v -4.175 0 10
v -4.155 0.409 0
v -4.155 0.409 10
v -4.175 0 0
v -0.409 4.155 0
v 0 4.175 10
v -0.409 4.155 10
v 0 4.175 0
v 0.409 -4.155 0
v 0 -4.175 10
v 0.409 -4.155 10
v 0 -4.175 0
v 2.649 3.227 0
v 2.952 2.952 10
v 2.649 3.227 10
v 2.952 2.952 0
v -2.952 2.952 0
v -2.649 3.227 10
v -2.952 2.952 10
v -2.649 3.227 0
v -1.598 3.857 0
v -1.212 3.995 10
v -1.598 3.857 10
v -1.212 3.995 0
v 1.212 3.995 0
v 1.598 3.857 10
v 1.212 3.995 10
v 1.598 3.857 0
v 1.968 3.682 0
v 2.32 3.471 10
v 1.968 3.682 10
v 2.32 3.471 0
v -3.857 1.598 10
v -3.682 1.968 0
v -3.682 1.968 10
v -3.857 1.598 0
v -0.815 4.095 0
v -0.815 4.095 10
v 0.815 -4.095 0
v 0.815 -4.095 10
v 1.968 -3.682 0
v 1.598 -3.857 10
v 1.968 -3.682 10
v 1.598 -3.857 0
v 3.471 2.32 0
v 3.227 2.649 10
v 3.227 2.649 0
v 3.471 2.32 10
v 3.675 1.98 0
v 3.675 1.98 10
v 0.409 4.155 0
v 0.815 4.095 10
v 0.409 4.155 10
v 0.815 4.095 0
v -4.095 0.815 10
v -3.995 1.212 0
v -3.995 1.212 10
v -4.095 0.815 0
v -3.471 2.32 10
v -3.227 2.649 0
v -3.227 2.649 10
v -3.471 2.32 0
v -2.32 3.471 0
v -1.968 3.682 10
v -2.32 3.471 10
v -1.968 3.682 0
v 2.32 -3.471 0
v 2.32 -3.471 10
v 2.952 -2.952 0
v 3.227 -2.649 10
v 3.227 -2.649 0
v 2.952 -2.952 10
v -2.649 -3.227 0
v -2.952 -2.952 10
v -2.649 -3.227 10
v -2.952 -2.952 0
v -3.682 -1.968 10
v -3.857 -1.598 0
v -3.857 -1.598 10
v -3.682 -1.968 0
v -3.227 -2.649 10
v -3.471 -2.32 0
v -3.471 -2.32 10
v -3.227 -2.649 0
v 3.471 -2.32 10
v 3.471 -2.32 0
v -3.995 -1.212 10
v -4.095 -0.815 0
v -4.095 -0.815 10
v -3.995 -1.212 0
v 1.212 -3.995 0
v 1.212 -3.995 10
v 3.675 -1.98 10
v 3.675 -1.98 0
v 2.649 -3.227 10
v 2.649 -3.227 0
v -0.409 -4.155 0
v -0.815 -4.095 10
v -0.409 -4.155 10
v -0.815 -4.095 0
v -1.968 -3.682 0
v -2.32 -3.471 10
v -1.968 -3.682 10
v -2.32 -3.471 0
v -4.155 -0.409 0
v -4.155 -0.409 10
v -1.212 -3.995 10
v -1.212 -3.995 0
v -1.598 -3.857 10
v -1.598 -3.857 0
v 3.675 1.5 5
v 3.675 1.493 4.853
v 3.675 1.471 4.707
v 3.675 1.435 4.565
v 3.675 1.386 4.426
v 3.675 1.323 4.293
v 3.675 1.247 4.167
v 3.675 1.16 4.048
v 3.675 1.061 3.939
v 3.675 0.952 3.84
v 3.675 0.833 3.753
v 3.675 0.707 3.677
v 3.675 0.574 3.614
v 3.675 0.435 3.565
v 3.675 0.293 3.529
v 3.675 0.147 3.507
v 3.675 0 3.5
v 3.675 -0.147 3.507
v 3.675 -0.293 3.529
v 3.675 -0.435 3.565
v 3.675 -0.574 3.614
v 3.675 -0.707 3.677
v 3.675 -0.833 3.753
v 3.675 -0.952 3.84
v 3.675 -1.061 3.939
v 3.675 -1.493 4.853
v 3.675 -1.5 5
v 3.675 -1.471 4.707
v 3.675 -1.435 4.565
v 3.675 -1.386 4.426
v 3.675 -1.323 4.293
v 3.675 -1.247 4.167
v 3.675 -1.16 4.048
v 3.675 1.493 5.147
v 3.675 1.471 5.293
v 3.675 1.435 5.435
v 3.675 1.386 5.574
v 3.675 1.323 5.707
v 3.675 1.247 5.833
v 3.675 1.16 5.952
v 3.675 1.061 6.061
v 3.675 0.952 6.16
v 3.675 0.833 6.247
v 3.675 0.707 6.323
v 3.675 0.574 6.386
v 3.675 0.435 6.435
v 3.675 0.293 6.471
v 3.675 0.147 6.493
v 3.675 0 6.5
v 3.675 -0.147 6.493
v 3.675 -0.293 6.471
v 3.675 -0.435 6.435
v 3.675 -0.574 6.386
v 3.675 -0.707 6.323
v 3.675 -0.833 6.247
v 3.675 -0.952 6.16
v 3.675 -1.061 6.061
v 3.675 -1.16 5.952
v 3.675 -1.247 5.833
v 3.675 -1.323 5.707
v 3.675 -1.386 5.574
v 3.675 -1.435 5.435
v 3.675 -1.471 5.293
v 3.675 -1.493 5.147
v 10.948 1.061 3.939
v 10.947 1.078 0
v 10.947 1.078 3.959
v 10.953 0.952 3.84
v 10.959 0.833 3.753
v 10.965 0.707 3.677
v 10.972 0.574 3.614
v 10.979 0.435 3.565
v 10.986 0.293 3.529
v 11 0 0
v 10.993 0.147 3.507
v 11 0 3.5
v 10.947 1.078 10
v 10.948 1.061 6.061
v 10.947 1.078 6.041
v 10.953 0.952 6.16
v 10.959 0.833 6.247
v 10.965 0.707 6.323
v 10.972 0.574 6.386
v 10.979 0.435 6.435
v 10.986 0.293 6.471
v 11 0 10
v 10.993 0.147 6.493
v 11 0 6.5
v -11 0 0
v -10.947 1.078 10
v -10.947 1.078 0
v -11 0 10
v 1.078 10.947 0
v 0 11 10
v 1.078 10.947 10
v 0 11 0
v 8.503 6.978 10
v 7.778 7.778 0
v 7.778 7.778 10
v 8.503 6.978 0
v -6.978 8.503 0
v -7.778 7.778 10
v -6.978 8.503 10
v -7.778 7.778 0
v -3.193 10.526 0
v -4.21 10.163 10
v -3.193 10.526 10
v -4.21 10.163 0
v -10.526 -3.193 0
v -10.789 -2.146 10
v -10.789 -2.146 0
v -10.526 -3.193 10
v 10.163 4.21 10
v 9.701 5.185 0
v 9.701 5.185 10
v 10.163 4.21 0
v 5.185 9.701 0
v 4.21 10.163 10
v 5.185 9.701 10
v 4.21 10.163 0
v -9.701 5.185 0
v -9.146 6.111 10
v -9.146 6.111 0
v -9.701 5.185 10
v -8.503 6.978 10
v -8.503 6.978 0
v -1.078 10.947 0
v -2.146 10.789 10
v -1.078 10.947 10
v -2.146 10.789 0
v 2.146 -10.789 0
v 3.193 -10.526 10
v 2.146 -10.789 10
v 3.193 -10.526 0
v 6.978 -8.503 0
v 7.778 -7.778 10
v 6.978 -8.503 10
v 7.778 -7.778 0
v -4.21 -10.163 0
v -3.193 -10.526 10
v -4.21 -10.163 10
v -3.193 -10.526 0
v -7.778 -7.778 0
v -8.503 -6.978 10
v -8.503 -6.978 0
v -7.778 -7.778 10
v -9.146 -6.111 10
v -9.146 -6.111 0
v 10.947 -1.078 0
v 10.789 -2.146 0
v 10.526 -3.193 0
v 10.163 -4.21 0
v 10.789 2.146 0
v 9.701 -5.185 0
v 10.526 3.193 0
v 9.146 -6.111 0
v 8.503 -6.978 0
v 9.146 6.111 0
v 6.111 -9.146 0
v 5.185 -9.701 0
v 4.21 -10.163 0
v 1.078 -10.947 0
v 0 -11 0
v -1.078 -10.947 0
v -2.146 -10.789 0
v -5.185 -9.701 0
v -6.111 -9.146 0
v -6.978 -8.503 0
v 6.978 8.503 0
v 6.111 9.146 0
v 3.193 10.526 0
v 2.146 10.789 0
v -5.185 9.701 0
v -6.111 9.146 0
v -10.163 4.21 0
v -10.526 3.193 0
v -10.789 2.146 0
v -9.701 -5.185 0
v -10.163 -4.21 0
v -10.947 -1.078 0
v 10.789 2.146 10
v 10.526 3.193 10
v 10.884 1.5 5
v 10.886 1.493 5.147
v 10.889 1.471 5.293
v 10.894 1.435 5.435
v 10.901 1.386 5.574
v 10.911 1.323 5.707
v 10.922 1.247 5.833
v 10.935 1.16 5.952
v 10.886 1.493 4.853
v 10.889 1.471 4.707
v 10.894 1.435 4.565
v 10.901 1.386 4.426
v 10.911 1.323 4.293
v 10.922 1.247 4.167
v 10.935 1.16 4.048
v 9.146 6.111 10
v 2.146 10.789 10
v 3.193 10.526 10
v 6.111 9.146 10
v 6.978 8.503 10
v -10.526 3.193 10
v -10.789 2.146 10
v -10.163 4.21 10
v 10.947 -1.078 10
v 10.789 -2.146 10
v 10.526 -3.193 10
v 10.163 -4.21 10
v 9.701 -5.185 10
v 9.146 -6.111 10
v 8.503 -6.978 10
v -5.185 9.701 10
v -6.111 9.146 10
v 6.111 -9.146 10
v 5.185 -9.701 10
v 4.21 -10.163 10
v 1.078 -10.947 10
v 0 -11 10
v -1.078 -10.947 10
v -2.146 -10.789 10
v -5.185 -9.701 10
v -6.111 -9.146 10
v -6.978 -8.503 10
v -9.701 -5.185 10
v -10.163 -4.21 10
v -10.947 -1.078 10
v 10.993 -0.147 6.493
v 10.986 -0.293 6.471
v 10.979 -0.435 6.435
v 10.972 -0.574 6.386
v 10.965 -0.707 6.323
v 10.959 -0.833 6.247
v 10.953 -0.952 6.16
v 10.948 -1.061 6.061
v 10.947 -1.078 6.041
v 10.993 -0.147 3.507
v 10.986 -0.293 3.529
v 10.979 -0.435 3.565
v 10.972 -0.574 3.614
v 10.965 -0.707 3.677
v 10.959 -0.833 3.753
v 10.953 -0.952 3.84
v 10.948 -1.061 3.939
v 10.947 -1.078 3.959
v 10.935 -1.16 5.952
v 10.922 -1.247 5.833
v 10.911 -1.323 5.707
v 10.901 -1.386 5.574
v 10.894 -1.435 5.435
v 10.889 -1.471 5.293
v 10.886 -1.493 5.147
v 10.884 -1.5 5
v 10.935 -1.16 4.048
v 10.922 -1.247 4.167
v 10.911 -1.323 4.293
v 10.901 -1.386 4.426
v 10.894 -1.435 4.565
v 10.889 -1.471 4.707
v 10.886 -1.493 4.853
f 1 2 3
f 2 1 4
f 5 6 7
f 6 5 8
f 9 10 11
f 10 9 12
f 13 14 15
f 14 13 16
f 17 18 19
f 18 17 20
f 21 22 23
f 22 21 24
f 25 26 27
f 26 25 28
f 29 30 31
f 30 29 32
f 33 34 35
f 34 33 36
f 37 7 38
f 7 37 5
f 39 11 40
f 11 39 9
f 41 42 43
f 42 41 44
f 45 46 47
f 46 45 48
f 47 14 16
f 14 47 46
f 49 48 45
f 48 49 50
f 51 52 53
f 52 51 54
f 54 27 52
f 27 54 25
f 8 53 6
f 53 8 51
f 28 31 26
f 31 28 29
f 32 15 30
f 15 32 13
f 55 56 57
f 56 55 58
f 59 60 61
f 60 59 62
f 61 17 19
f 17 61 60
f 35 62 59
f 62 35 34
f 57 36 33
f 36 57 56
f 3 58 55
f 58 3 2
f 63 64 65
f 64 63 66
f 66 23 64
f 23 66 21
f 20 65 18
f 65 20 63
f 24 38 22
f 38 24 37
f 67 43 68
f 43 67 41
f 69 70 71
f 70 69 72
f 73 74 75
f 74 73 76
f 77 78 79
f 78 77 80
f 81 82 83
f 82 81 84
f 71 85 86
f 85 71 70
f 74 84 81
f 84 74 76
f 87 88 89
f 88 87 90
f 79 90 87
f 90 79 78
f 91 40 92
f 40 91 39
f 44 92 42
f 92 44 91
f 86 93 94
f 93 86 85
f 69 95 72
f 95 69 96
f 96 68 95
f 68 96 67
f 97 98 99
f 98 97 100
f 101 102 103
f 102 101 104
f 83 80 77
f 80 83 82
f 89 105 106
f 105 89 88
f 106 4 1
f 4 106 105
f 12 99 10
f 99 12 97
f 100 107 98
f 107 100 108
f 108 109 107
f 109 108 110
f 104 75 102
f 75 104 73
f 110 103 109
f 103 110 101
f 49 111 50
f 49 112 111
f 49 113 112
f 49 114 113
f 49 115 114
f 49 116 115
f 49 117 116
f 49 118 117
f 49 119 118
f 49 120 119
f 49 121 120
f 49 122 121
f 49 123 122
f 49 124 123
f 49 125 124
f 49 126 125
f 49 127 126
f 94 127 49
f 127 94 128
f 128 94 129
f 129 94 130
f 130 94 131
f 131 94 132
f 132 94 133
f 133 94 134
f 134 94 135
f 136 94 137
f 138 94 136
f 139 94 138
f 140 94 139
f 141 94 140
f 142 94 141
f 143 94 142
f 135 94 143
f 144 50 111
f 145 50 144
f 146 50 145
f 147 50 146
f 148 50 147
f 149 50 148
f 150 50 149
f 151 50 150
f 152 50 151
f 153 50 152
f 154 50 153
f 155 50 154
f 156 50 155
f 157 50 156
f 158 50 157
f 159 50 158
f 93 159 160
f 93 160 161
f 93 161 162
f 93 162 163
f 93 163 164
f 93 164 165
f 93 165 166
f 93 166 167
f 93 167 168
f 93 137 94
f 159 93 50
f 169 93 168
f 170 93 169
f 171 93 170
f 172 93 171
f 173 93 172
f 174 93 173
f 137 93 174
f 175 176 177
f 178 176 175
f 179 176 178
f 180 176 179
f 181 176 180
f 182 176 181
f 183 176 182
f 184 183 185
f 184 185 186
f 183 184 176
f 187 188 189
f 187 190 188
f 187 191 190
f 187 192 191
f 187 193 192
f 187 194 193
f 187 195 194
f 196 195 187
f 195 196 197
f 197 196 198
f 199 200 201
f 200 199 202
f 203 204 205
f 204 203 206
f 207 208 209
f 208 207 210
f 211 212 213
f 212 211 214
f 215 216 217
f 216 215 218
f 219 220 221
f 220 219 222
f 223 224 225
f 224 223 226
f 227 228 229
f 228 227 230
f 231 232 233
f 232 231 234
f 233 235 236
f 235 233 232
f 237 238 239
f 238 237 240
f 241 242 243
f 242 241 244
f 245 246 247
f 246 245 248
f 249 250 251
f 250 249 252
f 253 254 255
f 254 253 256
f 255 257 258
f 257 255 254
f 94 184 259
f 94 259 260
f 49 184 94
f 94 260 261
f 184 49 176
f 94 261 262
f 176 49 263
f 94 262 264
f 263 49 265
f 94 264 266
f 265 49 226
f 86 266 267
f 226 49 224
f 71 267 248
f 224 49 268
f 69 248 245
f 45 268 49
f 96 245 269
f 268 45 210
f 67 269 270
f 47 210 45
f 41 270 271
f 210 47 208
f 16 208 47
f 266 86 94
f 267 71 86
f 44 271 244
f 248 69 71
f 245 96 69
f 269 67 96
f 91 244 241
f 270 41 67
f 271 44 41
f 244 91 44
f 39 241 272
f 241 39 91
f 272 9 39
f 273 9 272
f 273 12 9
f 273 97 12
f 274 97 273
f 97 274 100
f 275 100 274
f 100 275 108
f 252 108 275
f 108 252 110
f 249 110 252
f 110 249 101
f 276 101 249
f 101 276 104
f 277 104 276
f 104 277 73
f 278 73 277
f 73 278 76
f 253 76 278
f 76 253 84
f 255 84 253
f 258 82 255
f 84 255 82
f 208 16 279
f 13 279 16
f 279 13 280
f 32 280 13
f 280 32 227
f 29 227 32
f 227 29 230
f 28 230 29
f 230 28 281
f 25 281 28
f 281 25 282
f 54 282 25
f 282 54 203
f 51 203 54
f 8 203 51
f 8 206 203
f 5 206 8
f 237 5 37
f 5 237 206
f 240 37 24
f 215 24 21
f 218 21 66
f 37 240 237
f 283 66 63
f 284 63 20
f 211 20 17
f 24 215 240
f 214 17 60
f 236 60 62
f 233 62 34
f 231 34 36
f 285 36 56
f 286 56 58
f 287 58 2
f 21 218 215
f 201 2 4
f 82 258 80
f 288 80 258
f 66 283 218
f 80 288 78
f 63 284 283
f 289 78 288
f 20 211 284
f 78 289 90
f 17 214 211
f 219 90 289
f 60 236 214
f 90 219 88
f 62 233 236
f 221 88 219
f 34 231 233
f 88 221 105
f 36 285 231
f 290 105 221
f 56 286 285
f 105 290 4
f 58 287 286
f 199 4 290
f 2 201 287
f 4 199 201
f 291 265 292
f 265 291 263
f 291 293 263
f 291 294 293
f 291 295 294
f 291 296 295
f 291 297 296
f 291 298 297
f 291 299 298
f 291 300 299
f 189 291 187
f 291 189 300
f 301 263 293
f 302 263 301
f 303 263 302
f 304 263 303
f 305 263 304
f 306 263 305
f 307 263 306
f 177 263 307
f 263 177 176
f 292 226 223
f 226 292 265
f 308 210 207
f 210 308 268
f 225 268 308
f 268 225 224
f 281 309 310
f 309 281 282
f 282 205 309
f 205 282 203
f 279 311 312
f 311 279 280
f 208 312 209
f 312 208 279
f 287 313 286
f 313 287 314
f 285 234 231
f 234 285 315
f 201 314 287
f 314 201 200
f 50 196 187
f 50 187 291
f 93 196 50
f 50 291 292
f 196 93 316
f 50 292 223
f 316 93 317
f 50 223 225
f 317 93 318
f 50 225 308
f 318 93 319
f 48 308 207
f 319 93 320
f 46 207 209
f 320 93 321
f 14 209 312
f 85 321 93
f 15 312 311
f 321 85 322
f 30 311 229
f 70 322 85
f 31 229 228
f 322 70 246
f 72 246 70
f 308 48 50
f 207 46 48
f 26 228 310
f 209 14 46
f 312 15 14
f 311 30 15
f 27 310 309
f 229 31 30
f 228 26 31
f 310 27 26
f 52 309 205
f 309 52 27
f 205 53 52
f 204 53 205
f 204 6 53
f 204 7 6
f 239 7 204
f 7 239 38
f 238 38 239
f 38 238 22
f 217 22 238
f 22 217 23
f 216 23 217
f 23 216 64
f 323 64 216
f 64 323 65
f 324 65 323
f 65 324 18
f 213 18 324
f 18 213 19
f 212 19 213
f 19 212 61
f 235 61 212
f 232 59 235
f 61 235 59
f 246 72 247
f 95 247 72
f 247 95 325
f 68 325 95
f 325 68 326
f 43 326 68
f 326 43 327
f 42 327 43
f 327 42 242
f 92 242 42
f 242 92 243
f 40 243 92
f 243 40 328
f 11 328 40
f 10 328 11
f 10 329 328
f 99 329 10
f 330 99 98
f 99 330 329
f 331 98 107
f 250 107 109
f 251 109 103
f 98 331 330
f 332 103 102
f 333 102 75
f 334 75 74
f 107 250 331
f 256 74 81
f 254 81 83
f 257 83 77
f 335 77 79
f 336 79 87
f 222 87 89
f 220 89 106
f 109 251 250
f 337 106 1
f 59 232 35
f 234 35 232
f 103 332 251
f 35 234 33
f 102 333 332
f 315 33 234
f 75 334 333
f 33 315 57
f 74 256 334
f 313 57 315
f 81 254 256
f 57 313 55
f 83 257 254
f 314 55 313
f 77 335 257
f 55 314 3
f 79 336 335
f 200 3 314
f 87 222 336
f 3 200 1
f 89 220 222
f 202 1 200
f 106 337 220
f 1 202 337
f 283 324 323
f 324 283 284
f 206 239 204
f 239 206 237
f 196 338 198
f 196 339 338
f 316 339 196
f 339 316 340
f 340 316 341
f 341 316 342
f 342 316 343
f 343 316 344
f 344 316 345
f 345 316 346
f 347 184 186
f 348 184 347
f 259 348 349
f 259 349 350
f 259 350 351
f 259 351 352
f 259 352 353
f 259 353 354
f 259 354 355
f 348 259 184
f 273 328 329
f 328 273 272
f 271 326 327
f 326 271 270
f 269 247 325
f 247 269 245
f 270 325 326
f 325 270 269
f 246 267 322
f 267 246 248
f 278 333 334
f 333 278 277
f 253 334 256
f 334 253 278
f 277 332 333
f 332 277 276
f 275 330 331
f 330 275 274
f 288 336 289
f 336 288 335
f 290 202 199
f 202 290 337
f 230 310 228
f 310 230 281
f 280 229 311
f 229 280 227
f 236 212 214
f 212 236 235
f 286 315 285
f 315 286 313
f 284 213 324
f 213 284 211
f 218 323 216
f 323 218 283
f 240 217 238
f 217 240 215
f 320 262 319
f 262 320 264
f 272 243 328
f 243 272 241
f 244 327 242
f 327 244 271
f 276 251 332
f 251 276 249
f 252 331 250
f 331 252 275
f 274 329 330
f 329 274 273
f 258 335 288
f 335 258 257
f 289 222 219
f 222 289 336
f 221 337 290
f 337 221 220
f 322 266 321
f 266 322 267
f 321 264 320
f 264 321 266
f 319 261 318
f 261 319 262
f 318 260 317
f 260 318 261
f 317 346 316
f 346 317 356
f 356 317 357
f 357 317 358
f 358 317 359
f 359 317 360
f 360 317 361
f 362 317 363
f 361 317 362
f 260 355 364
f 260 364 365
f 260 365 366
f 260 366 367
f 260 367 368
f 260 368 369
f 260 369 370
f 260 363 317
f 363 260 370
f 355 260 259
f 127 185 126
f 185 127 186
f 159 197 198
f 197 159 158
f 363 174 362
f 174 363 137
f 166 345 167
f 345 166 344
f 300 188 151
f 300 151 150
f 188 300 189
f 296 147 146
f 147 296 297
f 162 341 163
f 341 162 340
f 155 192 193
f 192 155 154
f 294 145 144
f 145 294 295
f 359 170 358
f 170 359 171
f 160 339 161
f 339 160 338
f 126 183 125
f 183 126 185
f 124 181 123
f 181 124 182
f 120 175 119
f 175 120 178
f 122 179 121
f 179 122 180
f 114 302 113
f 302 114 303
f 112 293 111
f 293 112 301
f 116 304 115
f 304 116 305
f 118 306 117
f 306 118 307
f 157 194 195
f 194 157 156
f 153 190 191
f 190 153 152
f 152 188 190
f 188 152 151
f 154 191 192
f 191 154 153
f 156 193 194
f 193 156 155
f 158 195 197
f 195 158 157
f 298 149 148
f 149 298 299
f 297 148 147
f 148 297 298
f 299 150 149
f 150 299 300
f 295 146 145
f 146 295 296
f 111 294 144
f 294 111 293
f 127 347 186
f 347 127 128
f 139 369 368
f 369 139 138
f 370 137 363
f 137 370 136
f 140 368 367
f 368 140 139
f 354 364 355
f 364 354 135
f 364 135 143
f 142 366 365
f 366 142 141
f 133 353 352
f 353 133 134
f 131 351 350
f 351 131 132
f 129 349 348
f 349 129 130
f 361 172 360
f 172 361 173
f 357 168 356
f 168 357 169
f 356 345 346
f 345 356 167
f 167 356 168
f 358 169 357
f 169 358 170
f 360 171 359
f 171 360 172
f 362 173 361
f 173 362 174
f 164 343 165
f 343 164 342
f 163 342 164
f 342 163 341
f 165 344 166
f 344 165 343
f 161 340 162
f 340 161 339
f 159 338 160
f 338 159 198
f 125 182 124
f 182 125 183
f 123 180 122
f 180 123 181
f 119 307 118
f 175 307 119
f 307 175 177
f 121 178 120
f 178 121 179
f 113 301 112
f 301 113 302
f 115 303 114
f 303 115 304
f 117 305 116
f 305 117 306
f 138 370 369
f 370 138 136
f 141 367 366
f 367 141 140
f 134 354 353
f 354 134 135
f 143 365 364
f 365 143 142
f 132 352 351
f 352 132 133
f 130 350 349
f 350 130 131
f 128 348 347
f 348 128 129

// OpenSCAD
// Gen-EE — shaft collar with D-flat bore (set screw bears on the flat); print x4
include <parameters.scad>;
$fn = 64;
// D-flat keyed bore: flat faces +X (angle 0 = magnet pocket 0 = index notch)
module dflat_bore(h) {
    intersection() {
        cylinder(d=shaft_bore, h=h);
        translate([-shaft_bore, -shaft_bore, 0]) cube([shaft_bore + dflat_x, 2*shaft_bore, h]);
    }
}

od = 22; h = collar_h; set_d = 3.0;
difference() {
    cylinder(d=od, h=h);
    translate([0, 0, -0.1]) dflat_bore(h + 0.2);
    translate([0, 0, h/2]) rotate([0, 90, 0]) cylinder(d=set_d, h=od);
}
